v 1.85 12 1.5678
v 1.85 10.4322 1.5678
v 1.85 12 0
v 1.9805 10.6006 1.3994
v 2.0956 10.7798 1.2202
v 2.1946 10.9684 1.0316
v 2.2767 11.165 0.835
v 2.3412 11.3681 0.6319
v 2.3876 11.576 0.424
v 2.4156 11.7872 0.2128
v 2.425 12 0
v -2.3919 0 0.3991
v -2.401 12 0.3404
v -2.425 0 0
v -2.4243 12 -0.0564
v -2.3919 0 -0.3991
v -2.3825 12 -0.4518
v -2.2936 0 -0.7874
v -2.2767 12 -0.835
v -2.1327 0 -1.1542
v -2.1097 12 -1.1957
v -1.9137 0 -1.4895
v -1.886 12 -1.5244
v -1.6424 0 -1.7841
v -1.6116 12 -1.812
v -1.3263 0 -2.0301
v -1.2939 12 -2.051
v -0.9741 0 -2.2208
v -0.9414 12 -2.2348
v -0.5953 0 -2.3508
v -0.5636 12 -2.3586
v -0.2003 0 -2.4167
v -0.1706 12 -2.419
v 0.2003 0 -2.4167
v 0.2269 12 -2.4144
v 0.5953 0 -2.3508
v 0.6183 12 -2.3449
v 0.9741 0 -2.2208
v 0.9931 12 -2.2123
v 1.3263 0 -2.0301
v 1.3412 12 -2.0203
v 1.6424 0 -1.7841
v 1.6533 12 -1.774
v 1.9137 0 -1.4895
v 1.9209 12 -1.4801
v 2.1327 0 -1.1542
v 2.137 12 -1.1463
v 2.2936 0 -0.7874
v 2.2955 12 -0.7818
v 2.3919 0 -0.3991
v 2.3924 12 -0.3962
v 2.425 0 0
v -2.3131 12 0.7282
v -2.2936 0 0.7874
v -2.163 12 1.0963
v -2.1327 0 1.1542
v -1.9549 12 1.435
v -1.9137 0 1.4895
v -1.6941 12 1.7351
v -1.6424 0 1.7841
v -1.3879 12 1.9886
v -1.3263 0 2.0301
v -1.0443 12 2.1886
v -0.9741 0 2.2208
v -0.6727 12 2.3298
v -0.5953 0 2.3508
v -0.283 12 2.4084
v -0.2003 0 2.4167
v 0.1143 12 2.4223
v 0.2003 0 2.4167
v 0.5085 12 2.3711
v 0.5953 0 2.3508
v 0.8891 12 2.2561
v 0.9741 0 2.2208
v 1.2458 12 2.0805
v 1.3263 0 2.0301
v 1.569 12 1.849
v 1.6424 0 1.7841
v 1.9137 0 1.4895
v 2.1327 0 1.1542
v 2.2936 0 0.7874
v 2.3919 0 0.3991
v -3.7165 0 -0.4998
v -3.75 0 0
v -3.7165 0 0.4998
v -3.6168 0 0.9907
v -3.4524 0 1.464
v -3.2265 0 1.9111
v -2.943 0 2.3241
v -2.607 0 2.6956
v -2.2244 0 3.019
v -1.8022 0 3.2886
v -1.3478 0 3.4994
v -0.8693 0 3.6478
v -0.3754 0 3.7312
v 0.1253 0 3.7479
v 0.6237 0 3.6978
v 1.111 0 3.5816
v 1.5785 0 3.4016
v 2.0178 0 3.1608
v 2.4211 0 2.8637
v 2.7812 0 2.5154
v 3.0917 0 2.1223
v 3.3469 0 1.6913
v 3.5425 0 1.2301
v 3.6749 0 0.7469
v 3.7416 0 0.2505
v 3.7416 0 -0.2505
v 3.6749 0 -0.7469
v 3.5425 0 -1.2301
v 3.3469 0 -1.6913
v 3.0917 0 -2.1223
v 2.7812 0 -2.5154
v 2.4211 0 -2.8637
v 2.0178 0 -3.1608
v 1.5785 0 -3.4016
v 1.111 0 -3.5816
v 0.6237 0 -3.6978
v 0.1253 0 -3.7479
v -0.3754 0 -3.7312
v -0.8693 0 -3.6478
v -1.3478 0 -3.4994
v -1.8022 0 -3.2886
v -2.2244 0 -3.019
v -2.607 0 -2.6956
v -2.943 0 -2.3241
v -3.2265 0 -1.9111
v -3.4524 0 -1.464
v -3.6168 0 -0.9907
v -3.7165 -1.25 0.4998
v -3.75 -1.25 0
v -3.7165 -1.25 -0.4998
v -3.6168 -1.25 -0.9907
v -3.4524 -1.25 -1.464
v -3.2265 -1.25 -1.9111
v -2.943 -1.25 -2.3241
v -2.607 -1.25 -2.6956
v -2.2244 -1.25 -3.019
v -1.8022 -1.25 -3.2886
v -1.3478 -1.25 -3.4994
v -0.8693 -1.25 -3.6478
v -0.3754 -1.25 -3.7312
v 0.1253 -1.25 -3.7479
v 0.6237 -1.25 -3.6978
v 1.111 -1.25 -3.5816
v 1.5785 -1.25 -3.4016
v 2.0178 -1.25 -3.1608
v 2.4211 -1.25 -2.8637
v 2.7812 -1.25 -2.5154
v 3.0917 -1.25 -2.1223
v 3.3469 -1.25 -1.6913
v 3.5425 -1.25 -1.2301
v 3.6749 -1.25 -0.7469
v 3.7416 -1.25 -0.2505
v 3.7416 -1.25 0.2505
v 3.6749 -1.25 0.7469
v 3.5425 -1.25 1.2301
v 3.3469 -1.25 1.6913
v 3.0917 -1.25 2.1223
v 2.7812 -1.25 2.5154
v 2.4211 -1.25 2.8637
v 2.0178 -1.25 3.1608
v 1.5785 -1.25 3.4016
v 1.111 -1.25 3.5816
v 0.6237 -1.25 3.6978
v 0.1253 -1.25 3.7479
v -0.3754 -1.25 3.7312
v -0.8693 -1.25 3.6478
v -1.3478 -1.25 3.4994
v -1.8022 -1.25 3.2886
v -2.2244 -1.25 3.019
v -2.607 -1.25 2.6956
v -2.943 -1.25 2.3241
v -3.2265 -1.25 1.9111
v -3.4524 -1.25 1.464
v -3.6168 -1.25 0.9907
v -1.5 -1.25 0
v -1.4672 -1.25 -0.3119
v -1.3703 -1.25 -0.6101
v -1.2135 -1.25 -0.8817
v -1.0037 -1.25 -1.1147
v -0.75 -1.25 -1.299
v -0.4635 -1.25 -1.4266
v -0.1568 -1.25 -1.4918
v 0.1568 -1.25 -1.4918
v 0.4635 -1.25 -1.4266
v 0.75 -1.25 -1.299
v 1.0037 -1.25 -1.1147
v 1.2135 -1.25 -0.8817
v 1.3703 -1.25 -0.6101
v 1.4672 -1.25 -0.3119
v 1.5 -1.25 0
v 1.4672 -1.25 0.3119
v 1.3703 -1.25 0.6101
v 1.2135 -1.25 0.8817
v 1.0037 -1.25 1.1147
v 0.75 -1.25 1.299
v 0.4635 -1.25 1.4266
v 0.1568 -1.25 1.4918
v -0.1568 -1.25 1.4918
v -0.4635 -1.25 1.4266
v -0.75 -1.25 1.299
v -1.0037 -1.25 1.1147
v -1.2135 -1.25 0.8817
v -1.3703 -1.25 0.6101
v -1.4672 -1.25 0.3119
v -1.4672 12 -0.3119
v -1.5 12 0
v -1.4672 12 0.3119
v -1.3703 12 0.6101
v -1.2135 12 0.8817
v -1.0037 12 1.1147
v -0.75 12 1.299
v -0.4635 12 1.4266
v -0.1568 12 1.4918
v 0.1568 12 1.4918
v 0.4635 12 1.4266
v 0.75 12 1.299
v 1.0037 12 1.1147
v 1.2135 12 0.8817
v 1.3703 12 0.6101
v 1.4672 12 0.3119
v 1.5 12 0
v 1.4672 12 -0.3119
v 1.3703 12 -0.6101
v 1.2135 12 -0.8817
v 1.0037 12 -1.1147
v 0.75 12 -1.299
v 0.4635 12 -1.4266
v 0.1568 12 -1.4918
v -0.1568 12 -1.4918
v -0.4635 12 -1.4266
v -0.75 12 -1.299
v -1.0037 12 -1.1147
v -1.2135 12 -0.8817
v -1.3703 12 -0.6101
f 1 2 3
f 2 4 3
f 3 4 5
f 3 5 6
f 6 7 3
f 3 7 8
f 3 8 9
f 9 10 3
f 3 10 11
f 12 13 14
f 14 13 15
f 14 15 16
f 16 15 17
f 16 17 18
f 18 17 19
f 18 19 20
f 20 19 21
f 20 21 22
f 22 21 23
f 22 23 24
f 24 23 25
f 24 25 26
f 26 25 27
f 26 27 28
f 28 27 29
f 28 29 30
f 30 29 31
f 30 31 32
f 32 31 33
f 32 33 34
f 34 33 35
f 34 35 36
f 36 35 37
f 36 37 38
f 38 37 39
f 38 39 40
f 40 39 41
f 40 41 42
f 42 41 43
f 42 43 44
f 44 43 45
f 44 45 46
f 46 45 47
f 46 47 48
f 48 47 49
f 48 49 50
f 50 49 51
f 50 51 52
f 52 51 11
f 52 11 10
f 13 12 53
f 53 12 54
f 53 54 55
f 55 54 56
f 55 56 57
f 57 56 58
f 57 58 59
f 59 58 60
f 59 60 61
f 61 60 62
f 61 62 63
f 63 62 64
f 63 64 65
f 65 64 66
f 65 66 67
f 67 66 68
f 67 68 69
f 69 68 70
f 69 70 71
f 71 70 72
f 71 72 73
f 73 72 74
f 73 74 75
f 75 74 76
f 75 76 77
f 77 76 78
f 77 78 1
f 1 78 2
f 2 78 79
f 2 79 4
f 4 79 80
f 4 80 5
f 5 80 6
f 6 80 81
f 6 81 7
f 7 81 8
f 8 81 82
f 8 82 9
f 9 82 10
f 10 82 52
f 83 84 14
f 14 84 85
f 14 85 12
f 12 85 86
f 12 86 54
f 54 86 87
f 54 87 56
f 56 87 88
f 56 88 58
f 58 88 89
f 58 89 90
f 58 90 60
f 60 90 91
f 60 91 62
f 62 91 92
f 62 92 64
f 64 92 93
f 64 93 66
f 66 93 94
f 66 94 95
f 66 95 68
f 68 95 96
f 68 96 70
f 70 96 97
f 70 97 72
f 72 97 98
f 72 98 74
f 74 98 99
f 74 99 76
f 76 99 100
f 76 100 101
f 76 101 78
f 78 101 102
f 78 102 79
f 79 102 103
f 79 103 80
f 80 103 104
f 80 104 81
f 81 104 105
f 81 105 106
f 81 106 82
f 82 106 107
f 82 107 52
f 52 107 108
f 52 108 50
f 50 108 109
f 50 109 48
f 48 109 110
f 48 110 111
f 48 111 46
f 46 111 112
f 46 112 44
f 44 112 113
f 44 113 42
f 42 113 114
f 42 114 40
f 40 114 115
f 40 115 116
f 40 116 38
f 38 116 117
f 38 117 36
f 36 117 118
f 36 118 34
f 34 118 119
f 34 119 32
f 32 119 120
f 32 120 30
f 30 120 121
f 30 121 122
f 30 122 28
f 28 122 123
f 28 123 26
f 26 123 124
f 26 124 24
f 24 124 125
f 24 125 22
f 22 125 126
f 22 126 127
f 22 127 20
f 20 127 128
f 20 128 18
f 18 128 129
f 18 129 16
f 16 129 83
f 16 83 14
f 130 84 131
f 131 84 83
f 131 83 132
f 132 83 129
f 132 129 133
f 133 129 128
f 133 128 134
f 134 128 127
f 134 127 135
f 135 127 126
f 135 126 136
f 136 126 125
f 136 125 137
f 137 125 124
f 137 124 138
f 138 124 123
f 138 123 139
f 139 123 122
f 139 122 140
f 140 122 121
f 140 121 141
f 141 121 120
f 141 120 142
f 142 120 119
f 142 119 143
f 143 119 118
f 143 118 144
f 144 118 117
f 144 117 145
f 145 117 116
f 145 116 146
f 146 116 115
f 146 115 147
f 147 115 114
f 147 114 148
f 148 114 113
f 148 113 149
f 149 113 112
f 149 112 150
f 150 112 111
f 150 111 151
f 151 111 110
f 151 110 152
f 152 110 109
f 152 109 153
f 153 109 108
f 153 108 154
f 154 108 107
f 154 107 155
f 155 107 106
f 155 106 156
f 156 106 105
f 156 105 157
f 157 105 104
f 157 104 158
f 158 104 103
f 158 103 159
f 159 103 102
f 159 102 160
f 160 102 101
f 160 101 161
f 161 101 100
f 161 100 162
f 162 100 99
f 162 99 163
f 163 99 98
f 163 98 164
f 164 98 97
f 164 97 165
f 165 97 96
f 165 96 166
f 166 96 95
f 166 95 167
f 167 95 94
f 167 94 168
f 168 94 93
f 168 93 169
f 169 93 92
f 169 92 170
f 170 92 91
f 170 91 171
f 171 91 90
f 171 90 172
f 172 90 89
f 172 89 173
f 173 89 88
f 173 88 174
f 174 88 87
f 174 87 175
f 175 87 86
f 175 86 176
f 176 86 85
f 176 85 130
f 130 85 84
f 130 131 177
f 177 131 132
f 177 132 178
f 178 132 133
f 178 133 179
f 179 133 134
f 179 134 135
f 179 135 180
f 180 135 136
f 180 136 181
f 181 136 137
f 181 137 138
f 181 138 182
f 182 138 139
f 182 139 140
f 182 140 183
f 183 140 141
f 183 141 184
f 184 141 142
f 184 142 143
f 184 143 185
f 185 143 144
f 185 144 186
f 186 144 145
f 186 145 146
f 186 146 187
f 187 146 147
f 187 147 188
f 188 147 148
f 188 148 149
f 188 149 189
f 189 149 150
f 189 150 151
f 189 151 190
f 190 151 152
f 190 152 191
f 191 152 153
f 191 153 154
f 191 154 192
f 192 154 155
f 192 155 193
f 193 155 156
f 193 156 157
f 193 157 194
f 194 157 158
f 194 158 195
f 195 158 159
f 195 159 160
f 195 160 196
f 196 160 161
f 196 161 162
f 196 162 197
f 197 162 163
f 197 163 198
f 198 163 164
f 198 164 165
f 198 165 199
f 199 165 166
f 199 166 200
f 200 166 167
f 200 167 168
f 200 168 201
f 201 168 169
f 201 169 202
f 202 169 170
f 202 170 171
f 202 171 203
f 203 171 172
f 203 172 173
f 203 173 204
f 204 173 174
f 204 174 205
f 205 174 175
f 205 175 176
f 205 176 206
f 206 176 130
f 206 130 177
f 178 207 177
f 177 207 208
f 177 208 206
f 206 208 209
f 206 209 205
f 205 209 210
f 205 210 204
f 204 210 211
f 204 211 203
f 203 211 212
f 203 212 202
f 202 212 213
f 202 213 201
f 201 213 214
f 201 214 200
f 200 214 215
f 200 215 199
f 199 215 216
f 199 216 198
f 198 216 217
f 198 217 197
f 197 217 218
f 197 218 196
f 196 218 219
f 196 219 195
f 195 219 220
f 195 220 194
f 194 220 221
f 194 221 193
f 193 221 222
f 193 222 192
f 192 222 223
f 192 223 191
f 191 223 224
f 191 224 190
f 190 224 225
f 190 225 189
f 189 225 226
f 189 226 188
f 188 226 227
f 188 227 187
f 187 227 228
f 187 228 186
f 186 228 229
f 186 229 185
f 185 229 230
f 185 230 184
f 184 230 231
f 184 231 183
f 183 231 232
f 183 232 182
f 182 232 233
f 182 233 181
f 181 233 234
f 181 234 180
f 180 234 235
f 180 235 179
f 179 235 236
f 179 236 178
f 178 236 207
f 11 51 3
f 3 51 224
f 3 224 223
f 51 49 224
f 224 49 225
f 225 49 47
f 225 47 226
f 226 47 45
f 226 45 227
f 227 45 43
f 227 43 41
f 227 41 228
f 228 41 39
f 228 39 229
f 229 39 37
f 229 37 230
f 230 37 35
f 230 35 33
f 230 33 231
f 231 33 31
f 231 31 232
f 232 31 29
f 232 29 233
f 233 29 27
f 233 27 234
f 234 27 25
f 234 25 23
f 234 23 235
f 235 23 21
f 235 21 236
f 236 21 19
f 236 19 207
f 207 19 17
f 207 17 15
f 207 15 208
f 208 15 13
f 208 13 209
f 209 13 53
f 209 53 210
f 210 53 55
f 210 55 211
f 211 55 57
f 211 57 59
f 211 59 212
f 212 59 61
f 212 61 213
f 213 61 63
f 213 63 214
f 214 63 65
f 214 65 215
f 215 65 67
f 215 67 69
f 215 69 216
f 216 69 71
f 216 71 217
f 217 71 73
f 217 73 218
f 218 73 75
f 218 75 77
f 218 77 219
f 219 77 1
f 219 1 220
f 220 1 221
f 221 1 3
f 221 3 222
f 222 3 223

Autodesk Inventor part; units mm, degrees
ref_plane "XZ Plane" through (0, 0, 0) normal (0, 1, 0) x (-1, 0, 0)
ref_plane "XY Plane" through (0, 0, 0) normal (0, 0, 1) x (1, 0, 0)
sketch "Эскиз1" plane through (0, 0, 0) normal (0, 1, 0) x (-1, 0, 0)
  circle A0 centre (0, 0) radius 3.75
  circle A1 centre (0, 0) radius 2.425
  circle A2 centre (0, 0) radius 1.5
  dimension "d0" = 4.85
  dimension "d1" = 7.5
  dimension "d2" = 3
extrude "Выдавливание1" add sketch "Эскиз1" along normal blind 12 contours A1
extrude "Выдавливание2" add sketch "Эскиз1" against normal blind 1.25 contours A0 | A1
ref_plane "РабПлоскость1" through (1.85, 0, 0) normal (1, 0, 0) x (0, 1, 0)
sketch "Эскиз2" plane through (1.85, 0, 0) normal (1, 0, 0) x (0, 1, 0)
  line L0 (12, -2.425) -> (12, 2.425) projected
  line L1 (0, -2.425) -> (0, 2.425) projected
  line L2 (12, -2.425) -> (12, 2.425) projected
  line L3 (0, -2.425) -> (0, 2.425) projected
  line L4 (12, 0) -> (9.575, 2.425)
  line L5 (0, 2.425) -> (12, 2.425) projected
  line L6 (12, 0) -> (15.4295, 0) construction
  line L7 (9.575, 2.425) -> (12, 2.425)
  point P0 (0, 0)
  dimension "d8" = 135
extrude "Выдавливание3" cut sketch "Эскиз2" along normal blind 10
properties part number "Штырь"
